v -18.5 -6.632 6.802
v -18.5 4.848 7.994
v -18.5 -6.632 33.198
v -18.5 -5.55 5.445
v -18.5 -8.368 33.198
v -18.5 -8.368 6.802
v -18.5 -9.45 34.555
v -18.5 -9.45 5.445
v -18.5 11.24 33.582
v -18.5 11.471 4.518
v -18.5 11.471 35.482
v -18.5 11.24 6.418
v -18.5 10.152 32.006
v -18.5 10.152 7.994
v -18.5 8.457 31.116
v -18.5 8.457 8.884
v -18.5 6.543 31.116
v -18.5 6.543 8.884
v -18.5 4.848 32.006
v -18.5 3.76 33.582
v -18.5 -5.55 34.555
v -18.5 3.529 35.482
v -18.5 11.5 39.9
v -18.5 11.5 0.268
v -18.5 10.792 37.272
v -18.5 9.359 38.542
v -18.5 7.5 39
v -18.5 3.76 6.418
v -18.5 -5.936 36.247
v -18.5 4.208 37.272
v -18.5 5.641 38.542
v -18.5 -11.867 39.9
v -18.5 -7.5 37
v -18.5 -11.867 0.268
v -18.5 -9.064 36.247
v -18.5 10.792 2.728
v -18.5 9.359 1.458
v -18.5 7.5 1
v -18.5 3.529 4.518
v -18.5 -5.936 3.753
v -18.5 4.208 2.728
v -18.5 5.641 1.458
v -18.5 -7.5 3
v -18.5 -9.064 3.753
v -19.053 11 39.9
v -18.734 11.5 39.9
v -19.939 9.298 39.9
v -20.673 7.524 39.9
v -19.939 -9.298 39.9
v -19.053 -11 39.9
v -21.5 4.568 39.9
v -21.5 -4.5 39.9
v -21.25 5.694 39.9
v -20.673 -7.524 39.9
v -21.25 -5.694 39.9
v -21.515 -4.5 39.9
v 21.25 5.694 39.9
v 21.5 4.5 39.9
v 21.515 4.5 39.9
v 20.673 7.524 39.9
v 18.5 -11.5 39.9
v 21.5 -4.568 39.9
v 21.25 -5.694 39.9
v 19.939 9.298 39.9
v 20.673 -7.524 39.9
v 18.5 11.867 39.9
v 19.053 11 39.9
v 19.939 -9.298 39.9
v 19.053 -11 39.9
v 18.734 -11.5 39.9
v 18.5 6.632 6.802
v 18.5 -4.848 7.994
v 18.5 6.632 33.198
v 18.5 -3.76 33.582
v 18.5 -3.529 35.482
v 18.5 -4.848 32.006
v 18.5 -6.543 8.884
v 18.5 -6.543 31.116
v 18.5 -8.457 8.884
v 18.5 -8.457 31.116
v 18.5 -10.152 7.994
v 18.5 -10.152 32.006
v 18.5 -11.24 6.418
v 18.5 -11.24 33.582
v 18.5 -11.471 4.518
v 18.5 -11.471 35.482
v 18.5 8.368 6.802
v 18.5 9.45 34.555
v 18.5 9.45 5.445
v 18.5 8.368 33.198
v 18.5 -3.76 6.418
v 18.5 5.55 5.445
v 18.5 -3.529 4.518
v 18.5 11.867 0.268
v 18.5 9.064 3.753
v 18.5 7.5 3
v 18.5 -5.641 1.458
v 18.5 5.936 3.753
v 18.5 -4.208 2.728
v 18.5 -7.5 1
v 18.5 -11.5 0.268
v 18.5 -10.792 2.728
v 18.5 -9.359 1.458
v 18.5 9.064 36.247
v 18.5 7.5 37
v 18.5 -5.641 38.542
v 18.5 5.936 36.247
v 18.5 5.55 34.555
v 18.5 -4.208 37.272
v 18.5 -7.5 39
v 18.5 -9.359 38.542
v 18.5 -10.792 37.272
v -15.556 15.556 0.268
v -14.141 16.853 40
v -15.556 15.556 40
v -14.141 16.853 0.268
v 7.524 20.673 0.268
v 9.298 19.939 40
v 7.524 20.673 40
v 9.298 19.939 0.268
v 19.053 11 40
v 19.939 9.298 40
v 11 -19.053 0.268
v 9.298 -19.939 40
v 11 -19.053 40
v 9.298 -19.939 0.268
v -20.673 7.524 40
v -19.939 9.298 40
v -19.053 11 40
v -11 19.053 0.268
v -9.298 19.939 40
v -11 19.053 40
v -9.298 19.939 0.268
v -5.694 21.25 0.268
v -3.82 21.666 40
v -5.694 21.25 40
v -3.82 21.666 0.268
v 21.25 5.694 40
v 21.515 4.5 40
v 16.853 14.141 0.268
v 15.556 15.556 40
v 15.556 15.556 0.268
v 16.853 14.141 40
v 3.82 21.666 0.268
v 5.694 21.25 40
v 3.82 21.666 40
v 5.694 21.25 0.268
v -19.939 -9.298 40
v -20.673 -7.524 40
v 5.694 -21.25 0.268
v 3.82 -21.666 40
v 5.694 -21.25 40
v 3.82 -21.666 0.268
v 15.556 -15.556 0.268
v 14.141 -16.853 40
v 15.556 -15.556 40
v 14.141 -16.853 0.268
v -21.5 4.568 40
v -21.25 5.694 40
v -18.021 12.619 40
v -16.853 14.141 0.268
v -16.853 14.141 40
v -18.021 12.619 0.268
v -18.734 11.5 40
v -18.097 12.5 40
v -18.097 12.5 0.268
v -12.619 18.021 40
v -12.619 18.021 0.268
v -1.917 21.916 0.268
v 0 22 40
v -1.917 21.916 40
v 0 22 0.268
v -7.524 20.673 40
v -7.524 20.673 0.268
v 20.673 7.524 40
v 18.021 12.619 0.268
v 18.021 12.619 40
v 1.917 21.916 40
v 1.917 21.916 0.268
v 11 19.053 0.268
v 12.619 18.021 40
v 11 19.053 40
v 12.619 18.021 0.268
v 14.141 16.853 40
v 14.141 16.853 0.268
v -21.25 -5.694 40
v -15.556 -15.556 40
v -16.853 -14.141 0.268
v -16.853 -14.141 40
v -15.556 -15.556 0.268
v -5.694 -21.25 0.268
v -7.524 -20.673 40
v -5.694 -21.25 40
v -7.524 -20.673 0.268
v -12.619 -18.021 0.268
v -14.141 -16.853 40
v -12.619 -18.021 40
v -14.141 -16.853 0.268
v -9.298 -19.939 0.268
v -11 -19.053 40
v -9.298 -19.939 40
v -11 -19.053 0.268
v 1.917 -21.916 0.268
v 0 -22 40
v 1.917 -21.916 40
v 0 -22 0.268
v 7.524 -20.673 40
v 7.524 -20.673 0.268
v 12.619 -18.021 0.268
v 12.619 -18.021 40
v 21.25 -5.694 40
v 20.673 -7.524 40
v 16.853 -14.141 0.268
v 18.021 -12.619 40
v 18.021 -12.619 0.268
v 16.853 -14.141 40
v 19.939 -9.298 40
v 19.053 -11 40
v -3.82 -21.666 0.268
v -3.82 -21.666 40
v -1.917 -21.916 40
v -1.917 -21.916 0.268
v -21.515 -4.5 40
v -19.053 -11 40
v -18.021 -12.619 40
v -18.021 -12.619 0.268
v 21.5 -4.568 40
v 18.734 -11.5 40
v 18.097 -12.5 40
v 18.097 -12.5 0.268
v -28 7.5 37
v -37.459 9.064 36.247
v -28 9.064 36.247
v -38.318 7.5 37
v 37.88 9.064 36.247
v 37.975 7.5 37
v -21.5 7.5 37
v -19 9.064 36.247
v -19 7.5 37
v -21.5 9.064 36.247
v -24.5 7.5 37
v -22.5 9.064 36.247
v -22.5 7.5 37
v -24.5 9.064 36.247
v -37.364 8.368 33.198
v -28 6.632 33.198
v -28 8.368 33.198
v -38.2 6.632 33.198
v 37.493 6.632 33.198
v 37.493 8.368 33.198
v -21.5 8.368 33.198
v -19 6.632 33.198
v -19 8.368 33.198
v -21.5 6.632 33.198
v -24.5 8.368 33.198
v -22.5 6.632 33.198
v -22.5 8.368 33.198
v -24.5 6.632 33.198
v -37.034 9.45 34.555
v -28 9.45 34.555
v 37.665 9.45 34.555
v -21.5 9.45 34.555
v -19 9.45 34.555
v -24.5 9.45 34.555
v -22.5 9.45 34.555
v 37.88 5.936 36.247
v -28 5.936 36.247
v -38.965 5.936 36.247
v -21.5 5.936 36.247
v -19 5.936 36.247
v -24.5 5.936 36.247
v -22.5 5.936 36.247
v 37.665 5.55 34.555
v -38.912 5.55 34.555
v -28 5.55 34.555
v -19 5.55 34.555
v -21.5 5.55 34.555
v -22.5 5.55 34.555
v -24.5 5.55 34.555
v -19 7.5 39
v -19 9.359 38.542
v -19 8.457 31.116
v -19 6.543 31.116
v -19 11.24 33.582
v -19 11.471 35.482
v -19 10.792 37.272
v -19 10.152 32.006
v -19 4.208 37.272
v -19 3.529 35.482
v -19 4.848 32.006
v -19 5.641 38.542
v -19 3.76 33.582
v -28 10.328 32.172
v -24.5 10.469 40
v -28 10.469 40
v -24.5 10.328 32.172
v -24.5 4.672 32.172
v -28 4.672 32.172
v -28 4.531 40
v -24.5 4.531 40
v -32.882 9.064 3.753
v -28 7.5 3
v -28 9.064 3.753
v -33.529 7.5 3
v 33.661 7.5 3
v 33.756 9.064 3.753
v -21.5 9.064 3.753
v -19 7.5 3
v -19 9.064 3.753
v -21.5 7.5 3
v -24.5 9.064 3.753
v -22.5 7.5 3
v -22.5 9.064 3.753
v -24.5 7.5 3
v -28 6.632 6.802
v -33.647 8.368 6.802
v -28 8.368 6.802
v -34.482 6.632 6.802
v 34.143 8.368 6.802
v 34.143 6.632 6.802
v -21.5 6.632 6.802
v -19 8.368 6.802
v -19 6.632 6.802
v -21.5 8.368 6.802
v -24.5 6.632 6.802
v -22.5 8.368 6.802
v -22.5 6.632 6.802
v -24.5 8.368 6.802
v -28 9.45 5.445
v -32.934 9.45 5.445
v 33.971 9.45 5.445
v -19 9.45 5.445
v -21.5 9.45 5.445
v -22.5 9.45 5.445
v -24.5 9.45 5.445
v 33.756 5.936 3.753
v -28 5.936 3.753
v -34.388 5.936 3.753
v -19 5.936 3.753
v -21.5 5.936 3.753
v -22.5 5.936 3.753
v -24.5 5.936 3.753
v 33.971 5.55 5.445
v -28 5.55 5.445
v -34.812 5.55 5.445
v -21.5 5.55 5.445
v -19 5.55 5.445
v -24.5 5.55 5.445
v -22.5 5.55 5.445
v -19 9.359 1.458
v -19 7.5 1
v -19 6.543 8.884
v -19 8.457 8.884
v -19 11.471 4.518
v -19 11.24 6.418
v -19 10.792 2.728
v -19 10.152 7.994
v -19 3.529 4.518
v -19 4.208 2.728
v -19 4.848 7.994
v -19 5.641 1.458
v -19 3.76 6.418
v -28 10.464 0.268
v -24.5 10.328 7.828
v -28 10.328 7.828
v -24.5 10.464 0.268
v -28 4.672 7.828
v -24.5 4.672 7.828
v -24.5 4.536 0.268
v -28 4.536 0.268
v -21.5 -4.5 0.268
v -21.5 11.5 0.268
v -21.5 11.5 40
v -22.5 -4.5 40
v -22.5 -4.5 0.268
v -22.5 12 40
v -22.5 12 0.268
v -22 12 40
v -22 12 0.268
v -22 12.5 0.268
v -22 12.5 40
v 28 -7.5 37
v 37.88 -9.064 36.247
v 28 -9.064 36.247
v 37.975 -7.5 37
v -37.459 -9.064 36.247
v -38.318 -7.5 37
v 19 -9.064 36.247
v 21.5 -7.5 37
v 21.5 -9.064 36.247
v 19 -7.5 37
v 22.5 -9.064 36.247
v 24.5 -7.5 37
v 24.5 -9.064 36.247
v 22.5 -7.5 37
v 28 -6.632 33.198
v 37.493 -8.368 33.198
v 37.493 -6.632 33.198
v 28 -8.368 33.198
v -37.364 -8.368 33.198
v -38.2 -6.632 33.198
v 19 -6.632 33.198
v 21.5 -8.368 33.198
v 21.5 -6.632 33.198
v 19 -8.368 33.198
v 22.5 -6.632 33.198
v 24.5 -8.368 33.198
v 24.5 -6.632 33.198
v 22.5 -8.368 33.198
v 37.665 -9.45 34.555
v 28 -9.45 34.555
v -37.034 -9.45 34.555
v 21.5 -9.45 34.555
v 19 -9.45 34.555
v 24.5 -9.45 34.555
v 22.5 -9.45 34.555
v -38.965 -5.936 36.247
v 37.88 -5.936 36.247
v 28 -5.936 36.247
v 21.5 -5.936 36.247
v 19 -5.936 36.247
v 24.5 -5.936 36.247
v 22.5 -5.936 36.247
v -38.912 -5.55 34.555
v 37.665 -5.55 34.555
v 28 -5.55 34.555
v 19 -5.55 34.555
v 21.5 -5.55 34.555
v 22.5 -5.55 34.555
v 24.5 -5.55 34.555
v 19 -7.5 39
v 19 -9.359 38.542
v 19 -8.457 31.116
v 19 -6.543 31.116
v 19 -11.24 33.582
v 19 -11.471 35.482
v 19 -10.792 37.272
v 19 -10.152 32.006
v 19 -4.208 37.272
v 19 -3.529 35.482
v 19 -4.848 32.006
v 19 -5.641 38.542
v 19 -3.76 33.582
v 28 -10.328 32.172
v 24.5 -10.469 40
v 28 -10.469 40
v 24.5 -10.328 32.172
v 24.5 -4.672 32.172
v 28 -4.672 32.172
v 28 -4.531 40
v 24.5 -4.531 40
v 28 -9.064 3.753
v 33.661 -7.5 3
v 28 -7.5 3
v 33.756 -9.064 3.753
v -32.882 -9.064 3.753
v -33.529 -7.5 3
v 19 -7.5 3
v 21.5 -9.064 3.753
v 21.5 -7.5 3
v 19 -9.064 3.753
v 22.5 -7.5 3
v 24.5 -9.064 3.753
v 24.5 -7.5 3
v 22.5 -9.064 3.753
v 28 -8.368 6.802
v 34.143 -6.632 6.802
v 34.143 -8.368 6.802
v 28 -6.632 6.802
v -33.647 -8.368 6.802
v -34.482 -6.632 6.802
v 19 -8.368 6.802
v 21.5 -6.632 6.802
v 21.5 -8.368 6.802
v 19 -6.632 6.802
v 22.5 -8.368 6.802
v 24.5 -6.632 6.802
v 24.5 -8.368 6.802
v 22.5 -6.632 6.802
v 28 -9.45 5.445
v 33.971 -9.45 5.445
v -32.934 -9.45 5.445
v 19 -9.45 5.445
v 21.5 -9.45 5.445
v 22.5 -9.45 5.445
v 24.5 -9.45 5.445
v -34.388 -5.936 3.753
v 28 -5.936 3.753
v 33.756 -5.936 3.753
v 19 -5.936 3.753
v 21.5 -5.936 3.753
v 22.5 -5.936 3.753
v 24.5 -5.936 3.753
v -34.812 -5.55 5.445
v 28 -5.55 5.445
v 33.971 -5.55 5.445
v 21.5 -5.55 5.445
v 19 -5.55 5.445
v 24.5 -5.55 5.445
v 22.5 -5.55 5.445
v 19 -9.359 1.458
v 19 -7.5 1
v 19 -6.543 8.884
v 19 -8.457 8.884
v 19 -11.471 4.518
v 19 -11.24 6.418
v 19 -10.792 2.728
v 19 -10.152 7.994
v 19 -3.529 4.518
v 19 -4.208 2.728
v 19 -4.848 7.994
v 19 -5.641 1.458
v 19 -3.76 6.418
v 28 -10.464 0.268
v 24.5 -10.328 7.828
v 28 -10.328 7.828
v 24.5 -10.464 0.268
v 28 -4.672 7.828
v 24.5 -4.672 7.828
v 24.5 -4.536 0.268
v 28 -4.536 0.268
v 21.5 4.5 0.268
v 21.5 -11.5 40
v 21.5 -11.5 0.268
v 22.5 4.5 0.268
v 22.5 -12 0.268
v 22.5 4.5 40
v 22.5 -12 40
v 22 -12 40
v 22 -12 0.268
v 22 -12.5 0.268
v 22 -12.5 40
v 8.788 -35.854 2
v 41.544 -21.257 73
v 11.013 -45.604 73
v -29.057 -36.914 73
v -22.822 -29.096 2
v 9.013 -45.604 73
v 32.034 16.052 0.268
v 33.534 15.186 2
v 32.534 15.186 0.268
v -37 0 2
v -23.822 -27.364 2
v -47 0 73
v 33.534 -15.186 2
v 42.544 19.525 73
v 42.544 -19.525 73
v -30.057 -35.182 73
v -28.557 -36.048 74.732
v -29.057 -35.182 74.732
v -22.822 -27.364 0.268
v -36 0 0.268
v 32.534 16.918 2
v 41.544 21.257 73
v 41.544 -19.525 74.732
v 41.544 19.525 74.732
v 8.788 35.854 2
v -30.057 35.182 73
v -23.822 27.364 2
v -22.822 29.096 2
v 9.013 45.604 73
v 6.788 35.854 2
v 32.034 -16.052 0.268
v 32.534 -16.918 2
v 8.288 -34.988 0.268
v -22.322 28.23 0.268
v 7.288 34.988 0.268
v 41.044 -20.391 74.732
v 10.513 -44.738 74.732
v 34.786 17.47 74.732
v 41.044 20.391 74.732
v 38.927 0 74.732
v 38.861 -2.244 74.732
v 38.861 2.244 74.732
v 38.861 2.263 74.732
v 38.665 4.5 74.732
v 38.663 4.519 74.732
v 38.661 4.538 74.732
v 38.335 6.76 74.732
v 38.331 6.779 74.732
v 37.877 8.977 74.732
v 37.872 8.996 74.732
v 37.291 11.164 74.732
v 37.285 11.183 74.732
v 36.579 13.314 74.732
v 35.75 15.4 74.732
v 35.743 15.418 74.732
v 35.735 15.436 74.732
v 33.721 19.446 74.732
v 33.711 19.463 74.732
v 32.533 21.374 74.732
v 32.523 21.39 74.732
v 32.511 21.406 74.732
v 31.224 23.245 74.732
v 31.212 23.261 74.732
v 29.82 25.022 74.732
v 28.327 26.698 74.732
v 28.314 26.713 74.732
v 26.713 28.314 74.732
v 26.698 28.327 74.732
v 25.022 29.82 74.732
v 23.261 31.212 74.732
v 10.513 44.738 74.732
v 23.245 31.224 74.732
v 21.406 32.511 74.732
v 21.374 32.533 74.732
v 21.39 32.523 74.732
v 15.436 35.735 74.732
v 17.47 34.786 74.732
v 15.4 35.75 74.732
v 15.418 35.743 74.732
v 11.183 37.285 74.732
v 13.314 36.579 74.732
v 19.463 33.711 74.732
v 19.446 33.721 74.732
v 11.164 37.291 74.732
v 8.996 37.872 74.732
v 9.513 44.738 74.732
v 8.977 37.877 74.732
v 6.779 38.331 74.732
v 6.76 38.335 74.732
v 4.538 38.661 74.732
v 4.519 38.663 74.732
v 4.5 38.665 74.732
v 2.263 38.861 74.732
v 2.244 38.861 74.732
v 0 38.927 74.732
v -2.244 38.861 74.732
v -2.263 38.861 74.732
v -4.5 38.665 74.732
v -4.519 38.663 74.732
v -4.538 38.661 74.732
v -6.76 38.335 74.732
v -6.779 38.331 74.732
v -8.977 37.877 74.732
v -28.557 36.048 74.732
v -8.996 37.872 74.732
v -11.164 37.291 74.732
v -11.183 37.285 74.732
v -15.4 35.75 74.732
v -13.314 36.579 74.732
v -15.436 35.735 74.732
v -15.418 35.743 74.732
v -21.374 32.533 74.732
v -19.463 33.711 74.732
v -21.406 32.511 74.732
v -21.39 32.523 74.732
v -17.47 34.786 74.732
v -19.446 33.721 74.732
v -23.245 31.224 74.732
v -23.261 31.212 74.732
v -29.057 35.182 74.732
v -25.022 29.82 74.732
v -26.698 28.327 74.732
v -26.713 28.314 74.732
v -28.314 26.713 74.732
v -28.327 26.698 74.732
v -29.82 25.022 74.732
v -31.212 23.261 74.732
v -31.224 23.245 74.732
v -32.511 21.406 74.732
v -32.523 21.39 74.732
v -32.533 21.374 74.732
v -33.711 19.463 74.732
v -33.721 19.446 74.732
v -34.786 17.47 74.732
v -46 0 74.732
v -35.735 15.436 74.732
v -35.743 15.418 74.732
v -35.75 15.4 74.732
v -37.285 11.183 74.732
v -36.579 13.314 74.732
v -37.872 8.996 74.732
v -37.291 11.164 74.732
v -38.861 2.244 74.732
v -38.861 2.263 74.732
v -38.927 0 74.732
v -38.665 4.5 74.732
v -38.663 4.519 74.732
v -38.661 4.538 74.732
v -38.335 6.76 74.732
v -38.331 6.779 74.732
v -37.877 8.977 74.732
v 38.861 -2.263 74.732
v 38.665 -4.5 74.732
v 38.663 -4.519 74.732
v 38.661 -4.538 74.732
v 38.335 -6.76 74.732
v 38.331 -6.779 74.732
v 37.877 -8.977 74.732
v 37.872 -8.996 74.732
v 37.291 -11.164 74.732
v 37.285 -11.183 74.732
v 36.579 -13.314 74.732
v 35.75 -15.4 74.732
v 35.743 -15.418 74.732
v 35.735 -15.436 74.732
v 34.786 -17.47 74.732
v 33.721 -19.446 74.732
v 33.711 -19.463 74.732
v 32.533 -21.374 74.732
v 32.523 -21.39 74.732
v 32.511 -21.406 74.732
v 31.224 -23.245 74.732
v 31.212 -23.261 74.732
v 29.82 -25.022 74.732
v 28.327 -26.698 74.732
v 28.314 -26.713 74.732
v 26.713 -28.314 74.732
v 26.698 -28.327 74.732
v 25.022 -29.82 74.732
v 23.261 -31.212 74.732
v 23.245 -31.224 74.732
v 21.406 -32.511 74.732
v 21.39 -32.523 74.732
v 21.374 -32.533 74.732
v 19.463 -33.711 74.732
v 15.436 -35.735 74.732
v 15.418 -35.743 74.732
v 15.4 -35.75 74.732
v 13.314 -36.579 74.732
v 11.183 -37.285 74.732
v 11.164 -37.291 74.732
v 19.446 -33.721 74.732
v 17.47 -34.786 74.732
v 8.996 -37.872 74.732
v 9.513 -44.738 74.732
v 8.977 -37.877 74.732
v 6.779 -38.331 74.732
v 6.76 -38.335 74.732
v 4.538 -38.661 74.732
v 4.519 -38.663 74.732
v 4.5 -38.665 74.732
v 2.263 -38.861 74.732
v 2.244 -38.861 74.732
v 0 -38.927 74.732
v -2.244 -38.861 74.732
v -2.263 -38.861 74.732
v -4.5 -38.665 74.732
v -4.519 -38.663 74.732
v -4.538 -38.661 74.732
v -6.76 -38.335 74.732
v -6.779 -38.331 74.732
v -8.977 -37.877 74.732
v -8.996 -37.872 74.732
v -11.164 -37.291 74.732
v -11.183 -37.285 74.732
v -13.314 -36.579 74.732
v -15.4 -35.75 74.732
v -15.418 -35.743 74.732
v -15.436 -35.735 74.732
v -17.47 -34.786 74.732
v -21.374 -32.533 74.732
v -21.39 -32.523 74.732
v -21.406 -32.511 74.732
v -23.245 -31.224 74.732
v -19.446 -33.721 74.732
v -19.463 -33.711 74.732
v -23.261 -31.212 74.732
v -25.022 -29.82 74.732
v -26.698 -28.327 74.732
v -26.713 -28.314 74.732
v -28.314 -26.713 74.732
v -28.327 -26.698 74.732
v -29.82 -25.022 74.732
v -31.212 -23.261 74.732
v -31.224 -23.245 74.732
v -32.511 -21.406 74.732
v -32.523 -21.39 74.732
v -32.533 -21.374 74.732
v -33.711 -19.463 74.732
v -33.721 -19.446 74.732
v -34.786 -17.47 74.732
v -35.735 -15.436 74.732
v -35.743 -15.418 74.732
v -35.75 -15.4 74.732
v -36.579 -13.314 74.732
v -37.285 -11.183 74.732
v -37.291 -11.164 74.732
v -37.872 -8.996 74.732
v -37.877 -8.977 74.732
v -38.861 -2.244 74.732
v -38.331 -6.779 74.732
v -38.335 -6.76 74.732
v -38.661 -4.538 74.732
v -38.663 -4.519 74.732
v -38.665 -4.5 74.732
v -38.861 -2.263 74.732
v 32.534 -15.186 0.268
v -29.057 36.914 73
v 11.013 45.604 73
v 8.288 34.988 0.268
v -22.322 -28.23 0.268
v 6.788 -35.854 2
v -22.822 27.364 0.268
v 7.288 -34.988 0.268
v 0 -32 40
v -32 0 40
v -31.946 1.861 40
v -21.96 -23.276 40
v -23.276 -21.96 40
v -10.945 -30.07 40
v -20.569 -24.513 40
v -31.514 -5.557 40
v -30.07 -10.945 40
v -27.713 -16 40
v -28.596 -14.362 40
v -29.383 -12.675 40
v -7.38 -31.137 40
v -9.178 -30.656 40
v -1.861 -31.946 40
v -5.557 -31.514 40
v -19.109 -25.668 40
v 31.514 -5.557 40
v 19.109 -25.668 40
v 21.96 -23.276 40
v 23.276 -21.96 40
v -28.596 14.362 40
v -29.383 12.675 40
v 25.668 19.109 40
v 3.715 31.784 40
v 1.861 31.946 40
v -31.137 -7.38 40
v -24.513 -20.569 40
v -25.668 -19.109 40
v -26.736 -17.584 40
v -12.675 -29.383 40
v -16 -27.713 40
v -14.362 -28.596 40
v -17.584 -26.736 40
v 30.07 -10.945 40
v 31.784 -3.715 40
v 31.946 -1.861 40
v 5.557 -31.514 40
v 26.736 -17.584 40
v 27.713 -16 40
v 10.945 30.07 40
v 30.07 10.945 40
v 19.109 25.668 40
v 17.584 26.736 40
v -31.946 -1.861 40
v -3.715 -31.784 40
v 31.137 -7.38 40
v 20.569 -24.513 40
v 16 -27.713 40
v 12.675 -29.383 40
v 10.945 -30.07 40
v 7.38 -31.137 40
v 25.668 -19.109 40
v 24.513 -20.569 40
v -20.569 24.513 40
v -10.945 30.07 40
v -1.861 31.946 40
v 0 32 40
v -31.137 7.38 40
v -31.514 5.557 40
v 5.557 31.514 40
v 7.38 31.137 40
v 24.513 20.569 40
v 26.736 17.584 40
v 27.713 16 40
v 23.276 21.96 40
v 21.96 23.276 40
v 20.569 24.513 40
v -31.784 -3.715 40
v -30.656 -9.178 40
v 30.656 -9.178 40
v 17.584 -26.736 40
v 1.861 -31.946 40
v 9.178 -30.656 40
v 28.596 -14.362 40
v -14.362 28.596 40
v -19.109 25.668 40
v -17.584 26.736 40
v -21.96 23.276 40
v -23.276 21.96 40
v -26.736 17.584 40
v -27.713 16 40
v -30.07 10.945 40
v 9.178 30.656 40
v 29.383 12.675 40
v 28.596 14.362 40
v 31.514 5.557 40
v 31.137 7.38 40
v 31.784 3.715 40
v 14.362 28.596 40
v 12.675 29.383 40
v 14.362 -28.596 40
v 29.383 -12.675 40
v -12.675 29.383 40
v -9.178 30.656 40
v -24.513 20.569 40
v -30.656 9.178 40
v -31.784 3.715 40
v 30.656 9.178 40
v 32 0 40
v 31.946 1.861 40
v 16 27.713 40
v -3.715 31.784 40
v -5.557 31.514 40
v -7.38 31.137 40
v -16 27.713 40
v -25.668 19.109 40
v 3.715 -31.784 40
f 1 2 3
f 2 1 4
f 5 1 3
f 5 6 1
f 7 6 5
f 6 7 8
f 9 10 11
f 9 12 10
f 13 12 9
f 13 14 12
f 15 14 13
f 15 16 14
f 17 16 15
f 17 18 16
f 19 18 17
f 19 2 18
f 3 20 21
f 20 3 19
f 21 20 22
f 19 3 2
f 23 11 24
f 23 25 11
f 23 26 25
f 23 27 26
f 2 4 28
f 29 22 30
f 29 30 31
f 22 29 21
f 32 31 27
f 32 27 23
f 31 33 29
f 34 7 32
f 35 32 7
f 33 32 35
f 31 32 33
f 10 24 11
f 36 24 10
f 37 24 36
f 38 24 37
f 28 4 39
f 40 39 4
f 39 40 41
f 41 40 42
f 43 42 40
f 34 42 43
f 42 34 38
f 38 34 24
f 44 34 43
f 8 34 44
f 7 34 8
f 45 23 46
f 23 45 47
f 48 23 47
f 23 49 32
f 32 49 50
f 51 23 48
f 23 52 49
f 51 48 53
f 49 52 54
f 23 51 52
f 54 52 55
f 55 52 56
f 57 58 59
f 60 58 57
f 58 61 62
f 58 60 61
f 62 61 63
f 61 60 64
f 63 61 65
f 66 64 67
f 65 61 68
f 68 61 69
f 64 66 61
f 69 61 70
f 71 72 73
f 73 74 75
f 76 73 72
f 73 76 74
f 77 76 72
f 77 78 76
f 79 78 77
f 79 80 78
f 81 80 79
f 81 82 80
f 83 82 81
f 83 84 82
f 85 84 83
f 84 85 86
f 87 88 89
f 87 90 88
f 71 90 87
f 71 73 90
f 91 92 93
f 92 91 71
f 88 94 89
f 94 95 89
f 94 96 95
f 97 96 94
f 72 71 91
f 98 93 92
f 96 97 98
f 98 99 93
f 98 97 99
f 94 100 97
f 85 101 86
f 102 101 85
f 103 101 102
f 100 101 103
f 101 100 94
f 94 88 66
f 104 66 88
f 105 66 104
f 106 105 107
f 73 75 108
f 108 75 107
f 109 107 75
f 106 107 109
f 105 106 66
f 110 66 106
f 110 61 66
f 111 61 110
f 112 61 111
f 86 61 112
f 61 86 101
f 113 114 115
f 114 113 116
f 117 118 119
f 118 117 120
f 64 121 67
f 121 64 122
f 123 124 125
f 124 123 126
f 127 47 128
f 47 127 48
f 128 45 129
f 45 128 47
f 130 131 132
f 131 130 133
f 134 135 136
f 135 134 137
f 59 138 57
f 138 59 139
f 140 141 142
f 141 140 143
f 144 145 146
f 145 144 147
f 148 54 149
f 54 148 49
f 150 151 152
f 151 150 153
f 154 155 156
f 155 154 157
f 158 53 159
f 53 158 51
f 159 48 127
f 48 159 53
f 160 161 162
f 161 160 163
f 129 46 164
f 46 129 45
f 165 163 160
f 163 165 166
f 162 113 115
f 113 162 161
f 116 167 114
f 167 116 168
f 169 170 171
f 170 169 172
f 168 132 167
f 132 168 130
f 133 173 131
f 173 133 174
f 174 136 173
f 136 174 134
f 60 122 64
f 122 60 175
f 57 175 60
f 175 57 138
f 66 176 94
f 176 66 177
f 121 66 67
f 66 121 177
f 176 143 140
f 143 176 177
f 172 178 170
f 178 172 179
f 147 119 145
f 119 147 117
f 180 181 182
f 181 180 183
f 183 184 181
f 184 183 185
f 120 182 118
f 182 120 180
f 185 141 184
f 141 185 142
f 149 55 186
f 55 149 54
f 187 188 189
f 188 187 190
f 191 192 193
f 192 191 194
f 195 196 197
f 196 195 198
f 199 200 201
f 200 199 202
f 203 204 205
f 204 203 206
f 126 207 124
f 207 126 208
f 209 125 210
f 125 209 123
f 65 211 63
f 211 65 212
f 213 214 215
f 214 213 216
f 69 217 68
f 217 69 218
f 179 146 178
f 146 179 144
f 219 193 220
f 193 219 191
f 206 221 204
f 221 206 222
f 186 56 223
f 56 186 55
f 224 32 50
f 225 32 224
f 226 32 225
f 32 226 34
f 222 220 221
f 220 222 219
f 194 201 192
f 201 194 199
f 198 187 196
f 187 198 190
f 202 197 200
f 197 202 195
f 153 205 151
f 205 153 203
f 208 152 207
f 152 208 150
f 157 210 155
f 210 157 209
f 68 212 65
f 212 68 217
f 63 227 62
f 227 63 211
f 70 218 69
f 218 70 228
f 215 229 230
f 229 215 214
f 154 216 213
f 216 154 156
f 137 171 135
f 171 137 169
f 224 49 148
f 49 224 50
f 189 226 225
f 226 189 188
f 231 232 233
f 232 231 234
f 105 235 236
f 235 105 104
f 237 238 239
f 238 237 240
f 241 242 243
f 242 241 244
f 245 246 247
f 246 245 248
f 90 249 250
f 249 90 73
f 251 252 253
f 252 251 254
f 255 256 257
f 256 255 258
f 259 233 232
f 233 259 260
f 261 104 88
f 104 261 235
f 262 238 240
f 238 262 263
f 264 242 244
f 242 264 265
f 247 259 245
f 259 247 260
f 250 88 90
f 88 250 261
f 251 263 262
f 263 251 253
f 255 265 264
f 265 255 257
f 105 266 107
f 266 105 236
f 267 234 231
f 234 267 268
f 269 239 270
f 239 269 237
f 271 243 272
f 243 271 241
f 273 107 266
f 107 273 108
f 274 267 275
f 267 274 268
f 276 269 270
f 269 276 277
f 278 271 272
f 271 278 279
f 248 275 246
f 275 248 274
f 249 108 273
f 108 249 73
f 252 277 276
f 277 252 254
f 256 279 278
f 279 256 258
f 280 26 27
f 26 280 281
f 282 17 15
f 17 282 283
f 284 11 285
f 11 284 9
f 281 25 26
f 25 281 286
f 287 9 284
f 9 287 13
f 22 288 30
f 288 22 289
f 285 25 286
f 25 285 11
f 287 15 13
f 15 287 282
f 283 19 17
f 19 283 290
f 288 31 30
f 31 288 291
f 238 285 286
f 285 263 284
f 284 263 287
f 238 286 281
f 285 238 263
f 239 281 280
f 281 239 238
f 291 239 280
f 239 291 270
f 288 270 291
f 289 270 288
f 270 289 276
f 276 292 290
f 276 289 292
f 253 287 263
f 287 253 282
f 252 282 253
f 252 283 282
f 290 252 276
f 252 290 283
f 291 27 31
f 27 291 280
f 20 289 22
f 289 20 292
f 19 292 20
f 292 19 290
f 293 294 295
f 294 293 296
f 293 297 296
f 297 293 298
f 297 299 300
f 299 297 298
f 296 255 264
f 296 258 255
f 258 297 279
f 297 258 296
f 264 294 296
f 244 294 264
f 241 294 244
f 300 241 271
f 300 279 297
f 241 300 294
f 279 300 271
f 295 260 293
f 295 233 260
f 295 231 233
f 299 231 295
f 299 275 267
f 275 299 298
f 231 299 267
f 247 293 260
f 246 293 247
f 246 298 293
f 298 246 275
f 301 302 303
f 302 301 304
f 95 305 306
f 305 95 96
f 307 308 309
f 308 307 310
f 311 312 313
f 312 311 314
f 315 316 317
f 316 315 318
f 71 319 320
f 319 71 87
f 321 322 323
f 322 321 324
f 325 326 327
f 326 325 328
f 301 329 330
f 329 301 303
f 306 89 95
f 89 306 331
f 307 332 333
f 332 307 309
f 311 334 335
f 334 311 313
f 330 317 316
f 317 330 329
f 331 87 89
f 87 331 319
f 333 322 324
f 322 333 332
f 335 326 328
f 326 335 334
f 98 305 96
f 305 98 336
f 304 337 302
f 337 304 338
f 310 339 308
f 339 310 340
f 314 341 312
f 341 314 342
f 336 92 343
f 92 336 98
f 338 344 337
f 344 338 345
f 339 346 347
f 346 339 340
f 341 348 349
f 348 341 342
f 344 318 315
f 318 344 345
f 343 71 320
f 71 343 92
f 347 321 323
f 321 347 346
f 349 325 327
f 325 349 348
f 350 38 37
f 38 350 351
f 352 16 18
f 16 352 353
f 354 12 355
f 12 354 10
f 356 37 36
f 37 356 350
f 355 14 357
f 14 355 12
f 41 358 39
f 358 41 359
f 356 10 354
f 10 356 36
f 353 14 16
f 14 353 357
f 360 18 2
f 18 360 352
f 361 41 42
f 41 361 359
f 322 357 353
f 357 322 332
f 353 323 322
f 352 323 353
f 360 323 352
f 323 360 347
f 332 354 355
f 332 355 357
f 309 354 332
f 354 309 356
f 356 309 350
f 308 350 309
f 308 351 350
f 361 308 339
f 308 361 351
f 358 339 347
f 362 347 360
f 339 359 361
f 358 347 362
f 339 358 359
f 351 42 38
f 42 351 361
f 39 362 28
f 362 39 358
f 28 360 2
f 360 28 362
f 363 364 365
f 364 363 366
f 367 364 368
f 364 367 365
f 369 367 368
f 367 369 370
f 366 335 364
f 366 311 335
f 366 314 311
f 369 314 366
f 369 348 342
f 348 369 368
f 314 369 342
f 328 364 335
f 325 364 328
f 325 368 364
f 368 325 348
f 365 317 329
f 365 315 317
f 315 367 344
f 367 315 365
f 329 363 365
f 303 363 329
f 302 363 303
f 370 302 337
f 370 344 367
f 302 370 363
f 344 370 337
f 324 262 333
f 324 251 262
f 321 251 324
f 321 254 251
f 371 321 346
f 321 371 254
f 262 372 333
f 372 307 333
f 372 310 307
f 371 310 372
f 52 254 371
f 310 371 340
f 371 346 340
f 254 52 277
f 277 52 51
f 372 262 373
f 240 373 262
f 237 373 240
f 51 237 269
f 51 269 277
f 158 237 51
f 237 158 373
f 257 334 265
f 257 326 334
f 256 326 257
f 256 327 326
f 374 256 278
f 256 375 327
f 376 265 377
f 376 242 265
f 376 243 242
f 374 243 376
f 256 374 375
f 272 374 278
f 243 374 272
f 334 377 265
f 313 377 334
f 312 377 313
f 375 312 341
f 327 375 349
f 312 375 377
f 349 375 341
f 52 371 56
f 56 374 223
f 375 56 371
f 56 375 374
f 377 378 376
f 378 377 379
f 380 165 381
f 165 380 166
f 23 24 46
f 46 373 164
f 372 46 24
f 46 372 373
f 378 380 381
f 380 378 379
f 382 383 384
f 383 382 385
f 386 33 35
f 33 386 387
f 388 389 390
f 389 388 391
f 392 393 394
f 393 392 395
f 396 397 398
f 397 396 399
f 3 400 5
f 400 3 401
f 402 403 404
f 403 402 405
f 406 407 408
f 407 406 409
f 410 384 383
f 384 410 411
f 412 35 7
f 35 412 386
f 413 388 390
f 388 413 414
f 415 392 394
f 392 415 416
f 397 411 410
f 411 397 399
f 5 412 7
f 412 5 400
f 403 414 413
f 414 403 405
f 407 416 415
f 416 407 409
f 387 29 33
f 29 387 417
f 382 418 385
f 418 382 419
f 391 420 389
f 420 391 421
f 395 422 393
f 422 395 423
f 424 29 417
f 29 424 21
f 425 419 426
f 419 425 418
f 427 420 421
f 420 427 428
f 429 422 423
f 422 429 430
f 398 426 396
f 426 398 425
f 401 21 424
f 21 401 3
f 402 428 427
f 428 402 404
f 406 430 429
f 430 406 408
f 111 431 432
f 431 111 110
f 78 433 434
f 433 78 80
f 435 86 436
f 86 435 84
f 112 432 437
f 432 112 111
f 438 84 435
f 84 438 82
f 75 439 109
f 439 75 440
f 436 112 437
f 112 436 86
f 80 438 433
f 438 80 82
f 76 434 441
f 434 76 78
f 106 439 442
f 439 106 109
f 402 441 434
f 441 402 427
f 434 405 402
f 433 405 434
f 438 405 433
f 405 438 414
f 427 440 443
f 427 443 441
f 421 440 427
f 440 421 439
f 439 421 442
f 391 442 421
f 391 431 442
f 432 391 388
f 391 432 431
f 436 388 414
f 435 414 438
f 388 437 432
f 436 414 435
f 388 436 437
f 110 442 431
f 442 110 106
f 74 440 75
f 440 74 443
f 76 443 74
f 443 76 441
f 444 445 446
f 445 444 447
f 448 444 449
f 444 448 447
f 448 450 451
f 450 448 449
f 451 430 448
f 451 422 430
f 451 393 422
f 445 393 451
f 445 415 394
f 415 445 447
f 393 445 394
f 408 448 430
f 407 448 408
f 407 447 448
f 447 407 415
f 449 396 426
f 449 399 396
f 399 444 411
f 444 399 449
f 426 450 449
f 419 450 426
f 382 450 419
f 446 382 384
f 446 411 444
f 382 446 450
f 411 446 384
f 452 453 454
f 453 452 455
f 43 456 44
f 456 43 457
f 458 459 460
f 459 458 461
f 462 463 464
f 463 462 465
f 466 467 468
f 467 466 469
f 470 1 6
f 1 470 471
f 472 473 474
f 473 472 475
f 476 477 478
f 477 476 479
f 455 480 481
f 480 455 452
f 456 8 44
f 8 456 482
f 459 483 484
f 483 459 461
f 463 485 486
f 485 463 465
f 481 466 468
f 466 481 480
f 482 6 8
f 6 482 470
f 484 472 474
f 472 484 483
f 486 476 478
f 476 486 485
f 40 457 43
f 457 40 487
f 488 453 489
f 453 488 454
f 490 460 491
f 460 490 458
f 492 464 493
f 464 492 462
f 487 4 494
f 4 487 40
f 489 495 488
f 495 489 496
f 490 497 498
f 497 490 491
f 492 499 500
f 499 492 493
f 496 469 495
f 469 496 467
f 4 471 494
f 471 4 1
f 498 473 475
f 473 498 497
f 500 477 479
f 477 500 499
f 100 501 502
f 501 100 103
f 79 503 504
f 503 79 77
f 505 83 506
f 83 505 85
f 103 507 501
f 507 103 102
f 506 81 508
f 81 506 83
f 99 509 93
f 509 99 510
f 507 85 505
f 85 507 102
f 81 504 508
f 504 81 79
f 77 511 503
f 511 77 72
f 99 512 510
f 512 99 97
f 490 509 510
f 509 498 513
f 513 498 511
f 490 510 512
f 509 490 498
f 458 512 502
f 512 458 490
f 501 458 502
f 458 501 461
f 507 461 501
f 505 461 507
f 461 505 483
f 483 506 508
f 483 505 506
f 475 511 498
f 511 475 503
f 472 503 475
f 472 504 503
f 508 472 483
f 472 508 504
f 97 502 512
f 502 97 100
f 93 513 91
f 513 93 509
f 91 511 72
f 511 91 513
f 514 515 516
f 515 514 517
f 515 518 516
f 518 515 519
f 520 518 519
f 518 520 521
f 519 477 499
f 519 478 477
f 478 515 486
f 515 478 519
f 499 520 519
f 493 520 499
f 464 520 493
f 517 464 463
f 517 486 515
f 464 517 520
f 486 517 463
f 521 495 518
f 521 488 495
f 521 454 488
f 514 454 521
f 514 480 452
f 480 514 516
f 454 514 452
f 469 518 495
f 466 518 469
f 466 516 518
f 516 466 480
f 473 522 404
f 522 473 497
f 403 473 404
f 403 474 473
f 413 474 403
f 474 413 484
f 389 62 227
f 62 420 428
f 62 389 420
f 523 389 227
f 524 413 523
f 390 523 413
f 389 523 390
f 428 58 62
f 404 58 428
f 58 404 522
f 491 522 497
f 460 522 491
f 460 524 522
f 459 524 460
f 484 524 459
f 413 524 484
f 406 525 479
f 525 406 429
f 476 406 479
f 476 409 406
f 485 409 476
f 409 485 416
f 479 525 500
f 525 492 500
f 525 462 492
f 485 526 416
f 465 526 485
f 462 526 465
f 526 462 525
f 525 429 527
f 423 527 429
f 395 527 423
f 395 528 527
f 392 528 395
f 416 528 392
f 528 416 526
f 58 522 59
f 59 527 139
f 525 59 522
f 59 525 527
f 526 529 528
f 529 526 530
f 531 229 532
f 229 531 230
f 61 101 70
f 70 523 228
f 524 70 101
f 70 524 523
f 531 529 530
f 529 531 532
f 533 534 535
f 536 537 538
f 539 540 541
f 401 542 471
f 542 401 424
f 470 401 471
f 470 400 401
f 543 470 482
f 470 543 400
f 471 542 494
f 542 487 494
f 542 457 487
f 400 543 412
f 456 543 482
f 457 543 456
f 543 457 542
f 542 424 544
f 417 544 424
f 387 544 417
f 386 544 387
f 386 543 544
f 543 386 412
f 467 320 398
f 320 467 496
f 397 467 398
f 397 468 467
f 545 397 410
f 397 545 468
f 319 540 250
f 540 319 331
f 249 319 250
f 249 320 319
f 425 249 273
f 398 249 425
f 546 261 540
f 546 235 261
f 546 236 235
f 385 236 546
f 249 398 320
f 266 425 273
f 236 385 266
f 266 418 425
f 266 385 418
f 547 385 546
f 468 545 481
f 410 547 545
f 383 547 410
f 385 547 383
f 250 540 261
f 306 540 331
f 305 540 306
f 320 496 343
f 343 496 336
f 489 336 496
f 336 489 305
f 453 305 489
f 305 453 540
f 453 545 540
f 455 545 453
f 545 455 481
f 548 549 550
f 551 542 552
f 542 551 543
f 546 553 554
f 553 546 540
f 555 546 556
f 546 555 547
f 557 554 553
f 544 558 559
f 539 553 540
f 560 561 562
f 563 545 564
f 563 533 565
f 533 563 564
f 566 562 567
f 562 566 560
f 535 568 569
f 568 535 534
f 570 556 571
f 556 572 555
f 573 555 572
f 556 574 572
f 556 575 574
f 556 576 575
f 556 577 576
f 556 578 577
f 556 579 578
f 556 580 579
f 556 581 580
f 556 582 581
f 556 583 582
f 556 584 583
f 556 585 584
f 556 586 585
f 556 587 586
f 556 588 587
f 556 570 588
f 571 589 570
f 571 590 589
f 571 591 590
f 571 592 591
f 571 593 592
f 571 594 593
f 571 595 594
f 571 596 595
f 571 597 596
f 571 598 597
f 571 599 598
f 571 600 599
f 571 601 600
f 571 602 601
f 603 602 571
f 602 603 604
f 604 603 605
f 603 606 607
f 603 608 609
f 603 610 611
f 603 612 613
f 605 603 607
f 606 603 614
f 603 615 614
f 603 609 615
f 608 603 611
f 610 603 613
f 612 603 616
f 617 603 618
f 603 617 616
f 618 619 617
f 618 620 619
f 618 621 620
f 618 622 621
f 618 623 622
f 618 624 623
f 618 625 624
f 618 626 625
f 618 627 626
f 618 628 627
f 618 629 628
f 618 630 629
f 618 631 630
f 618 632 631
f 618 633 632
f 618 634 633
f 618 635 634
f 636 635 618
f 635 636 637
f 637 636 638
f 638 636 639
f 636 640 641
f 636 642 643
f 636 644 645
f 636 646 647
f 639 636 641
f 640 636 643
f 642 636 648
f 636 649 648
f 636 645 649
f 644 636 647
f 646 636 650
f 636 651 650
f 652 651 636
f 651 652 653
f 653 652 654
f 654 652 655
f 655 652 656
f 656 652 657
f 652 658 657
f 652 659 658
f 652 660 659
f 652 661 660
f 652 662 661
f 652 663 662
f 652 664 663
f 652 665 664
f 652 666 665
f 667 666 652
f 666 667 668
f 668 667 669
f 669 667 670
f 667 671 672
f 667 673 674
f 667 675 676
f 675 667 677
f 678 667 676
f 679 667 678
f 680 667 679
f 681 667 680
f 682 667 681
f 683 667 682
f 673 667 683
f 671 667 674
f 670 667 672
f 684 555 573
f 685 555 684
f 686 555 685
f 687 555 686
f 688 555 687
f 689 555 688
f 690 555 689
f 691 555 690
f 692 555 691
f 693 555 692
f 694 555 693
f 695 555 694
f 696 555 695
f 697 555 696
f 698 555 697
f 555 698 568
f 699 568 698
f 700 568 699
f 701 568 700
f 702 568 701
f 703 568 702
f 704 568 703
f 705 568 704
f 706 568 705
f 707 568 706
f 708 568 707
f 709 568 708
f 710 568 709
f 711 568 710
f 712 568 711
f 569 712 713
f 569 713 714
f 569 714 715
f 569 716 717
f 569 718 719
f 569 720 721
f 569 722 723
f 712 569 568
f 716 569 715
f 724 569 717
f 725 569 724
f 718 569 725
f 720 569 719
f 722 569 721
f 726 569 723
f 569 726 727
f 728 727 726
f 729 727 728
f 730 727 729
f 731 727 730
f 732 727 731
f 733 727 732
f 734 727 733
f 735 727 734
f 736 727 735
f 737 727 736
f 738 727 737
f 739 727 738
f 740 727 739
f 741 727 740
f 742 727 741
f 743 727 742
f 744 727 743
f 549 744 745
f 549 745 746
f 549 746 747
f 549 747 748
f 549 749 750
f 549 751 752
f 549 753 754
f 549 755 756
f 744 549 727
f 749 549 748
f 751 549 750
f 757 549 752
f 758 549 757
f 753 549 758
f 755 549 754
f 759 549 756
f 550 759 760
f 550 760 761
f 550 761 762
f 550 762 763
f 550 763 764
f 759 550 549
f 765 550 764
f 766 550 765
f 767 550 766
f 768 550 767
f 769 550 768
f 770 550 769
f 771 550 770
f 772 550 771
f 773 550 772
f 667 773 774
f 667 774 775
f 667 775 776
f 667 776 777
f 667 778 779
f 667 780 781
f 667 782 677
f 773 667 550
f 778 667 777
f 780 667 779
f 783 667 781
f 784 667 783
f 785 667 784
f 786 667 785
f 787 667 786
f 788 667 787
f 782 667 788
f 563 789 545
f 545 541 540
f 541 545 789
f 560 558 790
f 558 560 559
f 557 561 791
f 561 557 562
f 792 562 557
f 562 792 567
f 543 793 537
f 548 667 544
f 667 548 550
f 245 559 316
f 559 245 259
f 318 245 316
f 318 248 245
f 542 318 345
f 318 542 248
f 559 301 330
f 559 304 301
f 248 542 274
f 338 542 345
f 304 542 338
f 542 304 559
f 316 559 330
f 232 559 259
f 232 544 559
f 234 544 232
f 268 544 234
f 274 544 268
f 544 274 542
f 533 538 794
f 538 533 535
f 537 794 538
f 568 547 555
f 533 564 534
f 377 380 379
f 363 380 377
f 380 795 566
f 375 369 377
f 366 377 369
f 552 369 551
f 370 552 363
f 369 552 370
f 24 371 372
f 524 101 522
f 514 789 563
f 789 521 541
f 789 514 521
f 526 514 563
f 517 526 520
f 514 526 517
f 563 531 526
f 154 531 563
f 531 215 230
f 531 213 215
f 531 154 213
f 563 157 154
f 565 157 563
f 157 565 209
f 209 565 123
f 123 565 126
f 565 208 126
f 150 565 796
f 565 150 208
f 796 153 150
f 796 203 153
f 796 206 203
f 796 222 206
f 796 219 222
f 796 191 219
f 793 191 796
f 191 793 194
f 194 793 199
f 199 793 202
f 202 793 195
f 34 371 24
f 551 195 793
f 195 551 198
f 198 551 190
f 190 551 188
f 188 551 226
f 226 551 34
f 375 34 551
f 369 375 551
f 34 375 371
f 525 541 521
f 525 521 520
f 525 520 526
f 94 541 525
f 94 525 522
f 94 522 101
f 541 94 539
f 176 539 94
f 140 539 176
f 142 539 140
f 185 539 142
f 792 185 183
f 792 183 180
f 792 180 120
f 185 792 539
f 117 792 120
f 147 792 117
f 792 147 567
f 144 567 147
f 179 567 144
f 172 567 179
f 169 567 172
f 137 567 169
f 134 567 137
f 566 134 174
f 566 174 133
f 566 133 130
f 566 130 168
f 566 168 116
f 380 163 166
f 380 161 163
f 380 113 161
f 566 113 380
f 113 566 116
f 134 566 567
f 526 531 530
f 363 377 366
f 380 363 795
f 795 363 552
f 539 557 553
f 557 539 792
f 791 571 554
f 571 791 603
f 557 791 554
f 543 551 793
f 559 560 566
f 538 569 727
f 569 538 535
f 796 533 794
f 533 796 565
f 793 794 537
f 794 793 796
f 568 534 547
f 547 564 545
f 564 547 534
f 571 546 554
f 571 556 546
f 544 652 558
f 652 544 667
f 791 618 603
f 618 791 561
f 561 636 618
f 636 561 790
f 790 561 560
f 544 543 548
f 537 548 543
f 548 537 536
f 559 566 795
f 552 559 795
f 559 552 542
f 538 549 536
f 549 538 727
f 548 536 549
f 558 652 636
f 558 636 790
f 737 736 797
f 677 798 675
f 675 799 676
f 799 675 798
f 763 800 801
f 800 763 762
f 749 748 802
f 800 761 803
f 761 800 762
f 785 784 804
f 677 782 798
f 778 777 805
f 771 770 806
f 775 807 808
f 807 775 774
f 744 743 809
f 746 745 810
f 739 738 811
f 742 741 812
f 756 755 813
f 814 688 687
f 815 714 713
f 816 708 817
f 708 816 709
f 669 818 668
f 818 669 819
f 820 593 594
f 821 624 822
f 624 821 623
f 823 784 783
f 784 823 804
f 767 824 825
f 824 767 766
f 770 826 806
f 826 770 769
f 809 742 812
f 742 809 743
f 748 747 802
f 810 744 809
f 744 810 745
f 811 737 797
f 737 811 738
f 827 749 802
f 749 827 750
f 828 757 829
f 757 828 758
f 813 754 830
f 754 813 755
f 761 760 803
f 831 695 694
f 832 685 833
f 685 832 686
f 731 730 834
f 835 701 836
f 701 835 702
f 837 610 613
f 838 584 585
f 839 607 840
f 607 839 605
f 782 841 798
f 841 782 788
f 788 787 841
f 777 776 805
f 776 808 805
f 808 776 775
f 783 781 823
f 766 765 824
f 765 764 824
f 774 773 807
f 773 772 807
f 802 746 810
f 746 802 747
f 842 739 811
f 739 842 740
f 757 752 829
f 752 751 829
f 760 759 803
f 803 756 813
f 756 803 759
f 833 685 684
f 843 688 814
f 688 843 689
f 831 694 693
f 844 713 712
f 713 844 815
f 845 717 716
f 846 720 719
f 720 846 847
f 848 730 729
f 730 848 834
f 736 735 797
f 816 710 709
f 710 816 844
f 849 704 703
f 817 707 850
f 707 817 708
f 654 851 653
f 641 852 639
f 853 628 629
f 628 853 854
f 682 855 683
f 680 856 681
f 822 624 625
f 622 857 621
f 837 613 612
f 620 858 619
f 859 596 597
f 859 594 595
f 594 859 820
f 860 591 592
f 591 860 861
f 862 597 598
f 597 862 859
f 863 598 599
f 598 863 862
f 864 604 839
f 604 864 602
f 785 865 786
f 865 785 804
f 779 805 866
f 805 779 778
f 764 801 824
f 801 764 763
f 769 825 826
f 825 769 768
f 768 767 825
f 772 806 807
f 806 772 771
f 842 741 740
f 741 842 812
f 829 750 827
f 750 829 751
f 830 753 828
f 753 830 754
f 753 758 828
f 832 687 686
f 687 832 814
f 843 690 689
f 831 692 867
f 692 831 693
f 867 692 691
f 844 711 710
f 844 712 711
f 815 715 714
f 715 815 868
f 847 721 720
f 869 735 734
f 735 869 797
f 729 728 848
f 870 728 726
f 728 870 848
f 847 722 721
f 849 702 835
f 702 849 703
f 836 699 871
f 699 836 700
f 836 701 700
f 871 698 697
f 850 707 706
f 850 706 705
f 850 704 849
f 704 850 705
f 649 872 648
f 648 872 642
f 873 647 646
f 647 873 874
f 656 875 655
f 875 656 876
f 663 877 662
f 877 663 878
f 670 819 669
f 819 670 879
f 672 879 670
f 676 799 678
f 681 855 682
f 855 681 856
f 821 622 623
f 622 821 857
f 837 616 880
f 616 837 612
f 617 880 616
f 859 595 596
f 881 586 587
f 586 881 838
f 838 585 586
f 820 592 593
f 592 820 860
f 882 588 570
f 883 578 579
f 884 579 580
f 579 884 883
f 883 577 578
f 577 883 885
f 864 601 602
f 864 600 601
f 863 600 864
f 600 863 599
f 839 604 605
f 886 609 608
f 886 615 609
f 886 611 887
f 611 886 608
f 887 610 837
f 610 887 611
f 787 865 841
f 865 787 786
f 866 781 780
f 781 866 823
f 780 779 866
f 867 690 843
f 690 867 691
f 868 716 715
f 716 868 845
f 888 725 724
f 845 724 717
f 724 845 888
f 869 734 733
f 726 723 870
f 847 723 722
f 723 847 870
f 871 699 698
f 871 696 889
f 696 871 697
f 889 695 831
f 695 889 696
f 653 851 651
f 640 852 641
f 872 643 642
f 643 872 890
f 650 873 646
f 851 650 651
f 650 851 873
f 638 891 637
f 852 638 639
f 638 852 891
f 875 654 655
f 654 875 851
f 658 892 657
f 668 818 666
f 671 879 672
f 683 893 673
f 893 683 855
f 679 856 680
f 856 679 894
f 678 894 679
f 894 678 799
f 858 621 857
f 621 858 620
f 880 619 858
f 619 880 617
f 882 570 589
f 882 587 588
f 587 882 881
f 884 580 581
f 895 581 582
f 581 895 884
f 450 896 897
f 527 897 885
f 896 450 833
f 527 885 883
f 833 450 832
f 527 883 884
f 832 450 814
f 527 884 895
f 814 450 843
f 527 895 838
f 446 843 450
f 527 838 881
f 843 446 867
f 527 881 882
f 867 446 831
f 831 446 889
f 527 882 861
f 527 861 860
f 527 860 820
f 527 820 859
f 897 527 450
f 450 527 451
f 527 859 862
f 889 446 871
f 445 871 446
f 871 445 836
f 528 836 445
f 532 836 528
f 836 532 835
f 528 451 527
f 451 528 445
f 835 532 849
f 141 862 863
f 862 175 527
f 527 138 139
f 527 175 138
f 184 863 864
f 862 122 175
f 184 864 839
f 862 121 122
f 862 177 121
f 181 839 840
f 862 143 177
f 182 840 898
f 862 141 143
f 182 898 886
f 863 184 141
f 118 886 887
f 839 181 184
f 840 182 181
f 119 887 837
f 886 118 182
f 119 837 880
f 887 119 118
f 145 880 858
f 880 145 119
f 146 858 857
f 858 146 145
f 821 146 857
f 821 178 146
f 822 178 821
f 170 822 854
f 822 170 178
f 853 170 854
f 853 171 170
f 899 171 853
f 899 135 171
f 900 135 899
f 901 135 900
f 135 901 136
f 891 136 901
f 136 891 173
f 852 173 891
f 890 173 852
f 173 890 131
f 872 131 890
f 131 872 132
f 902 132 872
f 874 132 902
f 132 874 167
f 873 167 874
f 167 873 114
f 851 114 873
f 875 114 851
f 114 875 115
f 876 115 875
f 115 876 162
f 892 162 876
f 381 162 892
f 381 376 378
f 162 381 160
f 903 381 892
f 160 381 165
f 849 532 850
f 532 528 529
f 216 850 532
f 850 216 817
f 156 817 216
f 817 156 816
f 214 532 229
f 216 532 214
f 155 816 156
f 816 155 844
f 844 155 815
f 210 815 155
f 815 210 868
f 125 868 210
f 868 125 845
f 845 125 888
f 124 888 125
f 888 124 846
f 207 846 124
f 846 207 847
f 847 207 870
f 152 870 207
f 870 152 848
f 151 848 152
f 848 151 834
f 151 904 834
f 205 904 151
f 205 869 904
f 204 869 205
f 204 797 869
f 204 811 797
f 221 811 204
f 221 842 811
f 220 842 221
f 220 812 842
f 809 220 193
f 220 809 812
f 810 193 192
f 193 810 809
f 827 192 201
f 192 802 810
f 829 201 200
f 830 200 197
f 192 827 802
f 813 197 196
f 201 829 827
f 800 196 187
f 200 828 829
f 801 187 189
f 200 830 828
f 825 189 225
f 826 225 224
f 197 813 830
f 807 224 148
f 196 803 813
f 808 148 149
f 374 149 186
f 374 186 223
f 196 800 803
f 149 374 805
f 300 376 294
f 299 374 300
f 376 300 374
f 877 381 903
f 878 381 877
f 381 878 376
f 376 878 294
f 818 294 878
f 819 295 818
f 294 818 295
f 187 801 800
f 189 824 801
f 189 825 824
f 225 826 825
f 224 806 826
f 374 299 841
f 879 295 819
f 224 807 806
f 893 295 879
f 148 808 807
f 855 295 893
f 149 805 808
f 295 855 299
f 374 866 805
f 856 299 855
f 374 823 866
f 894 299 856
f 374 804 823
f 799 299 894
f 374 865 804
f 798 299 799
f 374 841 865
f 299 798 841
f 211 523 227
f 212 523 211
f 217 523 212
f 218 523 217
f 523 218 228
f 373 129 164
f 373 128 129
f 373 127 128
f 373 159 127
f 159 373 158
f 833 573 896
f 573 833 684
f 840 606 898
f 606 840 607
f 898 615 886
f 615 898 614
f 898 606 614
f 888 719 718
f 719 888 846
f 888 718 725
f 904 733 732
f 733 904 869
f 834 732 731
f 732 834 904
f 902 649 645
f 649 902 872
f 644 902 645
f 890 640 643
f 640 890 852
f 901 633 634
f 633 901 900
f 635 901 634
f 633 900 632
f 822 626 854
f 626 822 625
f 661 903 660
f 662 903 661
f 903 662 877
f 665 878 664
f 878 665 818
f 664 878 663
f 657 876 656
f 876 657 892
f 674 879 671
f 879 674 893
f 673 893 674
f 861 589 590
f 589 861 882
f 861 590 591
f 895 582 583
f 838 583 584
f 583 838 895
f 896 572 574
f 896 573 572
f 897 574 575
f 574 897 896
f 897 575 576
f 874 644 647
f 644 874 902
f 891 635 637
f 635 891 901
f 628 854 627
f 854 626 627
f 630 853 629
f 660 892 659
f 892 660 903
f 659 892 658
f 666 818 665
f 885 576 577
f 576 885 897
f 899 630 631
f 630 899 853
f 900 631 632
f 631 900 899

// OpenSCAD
base_rad = 37;
upper_rad = 47;

center_rad = 22;    //radius of the knife blades
height = 75;

cup_base_rad = 64/2;
top_rad = 78/2;

knife_length = 9;
knife_thick = 1;
knife_height = 40;

screw_rad = 4/2;
screw_cap_rad = screw_rad*2;
nut_rad = 8/2;
nut_height = 3.5;


mirror([1,0,0]) cup_cutter();

//holds two exacto blades, lets you put a cup in and slice out the base.
module cup_cutter(){
    min_rad = 2;
    difference(){
        translate([0,0,min_rad]) union(){
            minkowski(){
                cylinder(r1=base_rad-min_rad, r2=upper_rad-min_rad, h=height-min_rad*2, $fn=7);
                sphere(r=min_rad, $fn=6); 
            }
        }
        
        
        //center hole
        difference(){
            translate([0,0,-.1]) cylinder(r=center_rad, h=height*2, $fn=72);
            for(i=[0,180]) rotate([0,0,i]) knife_block(solid = 1);
        }
        
        for(i=[0,180]) rotate([0,0,i]) knife_block(solid = 0);
        
        //sloped sides for the cup
        translate([0,0,knife_height]) cylinder(r1=cup_base_rad, r2=top_rad, h=height-knife_height+.1, $fn=108);
    }
}

module knife_block(solid = 1){
    wall = 3;
    screw_offset = wall;
    
    if(solid == 1){
        //this is the block to hold the blade
        translate([center_rad,0,knife_height/2-.1]) cube([knife_thick+wall*2, knife_length*3,knife_height], center=true);
    }
    
    if(solid == 0){
        //this is the knife slot itself
        translate([center_rad,0,knife_height/2]) cube([knife_thick, knife_length,knife_height+1], center=true);
        
        //add an extra tab, and more length so we can secure it
        translate([center_rad,screw_offset+knife_length/2,knife_height/2]) cube([knife_thick, knife_length,knife_height+1], center=true);
        translate([center_rad-knife_length/2,screw_offset+knife_length,knife_height/2]) rotate([0,0,90]) cube([knife_thick, knife_length,knife_height+1], center=true);
        
        //the screws
        for(i=[0,1]) translate([center_rad, screw_offset+knife_length/2, knife_height/2]) mirror([0,0,i]) translate([0,0,knife_height/2-wall-screw_rad]) rotate([0,-90,0]){
            cylinder(r=screw_rad, h=300, center=true);
            translate([0,0,wall]) cylinder(r=screw_cap_rad, h=30);
            
            //nut
            translate([0,0,-wall*2]) hull(){
                rotate([0,0,45]) cylinder(r=nut_rad, h=nut_height, $fn=4);
                translate([knife_height,0,0]) rotate([0,0,45]) cylinder(r=nut_rad+1, h=nut_height, $fn=4);
            }
        }
    }
}
